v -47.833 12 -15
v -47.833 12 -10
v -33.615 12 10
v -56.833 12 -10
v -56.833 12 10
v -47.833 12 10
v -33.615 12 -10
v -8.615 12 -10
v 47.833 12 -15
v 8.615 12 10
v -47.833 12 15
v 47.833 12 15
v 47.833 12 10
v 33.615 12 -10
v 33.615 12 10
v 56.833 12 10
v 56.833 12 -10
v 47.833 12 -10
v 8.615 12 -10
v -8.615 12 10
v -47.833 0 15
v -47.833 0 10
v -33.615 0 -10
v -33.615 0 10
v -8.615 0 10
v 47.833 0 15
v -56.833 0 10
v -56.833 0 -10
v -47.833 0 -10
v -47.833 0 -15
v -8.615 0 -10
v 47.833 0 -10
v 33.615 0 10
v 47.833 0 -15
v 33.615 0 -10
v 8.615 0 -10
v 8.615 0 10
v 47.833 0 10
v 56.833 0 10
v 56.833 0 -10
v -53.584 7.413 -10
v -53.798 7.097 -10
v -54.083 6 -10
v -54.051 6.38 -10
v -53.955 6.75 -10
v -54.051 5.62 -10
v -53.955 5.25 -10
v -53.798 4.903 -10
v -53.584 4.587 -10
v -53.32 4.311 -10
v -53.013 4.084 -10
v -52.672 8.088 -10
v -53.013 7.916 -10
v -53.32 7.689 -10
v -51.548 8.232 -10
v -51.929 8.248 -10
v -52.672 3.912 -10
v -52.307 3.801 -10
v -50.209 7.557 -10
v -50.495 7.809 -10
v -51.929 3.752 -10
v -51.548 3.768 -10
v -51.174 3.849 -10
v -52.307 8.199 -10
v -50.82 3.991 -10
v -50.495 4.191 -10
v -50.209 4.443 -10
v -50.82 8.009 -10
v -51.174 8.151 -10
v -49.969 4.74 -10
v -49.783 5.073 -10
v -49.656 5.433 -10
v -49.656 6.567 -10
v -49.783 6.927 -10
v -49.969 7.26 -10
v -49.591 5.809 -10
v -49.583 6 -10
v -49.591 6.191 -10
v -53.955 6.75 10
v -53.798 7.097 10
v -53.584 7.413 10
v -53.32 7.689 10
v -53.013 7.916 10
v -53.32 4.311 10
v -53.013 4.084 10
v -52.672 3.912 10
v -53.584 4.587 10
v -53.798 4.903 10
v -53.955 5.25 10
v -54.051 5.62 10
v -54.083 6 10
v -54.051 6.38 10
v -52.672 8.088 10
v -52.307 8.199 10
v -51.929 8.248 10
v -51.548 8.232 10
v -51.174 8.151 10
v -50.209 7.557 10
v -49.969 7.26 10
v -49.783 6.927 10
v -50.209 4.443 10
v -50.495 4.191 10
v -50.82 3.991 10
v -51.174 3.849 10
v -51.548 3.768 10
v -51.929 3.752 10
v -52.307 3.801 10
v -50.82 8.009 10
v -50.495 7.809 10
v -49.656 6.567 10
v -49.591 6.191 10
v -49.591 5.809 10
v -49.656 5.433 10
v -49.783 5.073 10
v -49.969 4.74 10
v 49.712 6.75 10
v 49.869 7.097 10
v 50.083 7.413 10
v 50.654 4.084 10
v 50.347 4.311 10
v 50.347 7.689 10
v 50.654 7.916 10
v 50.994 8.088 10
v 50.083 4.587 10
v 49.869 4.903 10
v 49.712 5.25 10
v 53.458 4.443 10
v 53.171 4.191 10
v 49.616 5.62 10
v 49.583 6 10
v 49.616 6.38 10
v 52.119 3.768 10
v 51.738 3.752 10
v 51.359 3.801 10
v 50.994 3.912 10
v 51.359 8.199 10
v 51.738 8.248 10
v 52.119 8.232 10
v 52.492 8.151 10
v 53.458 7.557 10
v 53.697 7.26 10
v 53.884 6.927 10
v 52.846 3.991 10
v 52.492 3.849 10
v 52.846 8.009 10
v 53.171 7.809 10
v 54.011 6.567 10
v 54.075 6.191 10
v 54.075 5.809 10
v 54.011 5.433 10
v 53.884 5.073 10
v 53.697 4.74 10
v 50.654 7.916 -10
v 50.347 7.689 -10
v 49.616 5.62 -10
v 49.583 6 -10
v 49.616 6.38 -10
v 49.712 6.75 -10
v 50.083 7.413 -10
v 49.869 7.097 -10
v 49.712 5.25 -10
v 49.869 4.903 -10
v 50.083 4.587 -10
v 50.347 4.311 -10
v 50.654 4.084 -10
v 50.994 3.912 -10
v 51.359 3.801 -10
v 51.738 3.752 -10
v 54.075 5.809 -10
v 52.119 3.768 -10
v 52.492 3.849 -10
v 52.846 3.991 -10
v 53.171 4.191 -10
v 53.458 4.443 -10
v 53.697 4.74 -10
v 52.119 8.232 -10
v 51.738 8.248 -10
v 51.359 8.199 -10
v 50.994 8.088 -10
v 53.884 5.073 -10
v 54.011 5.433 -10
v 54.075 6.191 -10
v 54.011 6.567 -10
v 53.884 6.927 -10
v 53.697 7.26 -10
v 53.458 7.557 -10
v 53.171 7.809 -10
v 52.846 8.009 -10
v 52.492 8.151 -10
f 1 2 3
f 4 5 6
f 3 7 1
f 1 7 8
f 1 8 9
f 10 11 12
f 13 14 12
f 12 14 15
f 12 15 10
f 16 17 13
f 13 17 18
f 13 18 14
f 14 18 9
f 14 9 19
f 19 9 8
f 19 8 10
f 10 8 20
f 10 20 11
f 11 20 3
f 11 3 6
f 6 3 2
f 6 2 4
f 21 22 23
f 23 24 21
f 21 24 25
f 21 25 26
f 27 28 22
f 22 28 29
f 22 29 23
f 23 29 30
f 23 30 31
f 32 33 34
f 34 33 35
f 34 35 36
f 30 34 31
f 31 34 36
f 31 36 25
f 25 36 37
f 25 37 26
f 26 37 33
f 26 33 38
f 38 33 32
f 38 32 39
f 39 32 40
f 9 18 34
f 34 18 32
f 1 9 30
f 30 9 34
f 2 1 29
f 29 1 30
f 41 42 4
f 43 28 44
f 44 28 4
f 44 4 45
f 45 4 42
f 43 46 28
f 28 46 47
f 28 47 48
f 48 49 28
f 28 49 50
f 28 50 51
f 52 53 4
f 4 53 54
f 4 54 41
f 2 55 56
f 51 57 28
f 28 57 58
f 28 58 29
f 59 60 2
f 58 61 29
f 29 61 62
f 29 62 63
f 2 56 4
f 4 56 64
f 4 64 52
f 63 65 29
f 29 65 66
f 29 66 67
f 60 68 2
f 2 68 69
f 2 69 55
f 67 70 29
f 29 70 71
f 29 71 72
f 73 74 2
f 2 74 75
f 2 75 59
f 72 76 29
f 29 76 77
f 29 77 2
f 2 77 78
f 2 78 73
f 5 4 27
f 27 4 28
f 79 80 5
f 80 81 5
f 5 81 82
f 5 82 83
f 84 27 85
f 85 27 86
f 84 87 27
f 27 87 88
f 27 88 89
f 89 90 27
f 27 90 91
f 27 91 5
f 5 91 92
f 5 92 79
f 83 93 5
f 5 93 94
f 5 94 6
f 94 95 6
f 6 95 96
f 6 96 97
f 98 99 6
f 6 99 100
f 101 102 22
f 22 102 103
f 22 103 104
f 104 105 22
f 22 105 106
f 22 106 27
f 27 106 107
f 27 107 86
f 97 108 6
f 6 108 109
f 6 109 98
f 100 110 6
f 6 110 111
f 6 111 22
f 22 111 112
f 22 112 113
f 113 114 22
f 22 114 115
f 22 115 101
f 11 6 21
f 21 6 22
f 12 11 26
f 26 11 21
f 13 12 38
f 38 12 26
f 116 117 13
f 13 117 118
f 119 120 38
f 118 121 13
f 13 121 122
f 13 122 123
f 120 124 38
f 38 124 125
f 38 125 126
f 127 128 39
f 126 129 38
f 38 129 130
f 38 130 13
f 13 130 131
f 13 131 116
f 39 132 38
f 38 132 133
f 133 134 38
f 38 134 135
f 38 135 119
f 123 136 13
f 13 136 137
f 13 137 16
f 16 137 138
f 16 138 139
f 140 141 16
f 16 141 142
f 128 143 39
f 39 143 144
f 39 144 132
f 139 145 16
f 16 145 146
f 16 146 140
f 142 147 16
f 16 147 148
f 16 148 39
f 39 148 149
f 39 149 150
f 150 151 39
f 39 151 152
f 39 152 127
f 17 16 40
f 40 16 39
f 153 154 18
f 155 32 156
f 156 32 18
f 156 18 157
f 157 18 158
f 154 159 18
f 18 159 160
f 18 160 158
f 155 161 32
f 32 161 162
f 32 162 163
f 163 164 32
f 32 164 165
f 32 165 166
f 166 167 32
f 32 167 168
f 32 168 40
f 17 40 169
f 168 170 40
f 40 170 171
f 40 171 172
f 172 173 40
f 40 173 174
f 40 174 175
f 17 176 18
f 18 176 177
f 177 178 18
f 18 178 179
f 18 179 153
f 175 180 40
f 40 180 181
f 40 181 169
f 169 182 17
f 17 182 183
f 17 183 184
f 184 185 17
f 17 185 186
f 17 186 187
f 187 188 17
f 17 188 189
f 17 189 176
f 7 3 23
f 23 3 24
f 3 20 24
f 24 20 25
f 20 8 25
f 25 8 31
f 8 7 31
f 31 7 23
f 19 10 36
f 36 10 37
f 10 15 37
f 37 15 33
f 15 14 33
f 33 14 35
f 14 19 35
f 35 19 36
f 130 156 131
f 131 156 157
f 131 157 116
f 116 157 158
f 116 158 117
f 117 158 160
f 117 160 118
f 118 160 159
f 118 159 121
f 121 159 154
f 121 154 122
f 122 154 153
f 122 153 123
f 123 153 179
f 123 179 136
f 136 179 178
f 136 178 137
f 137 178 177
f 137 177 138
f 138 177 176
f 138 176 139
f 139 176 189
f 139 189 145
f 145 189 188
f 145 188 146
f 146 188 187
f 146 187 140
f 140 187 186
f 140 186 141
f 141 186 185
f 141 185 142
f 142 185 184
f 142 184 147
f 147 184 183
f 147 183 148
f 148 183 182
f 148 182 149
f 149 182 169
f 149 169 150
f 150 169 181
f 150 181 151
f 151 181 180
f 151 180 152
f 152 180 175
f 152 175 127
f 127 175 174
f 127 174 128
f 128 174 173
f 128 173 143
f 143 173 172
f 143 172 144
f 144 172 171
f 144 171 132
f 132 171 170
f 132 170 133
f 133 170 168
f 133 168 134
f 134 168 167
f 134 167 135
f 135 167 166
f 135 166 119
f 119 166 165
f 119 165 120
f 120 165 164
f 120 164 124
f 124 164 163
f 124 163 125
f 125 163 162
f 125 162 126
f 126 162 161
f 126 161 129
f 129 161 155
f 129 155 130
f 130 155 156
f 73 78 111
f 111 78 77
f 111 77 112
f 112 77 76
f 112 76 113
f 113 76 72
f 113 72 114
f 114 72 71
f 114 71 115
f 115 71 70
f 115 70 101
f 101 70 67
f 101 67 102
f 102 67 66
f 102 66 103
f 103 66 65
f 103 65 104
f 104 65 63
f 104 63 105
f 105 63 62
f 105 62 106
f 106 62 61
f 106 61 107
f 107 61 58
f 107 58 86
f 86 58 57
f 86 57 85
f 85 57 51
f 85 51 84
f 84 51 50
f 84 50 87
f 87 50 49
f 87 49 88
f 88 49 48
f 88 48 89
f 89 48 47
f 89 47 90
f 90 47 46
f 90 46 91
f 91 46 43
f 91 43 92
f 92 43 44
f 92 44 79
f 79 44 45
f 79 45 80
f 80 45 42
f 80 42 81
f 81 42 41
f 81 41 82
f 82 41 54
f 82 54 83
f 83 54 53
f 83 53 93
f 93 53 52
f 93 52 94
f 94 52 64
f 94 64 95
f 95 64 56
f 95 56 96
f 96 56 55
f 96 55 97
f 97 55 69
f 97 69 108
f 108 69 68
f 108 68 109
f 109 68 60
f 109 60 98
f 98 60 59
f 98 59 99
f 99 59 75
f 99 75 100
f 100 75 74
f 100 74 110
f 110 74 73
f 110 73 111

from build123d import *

# Parameters (mm, degrees)
SKETCH1_W           = 25
SKETCH1_H           = 20
BOSS_EXTRUDE1_DEPTH = 12
SKETCH2_R           = 2.25
CUT_EXTRUDE1_DEPTH  = 64.237868143


with BuildPart() as part:
    # Sketch1 → Boss-Extrude1 (new body)
    with BuildSketch(Plane(origin=(0, 0, 0), x_dir=(1, 0, 0), z_dir=(0, 1, 0))):
        Polygon((-47.833335, 15), (47.833335, 15), (47.833335, 10), (56.833335, 10), (56.833335, -10), (47.833335, -10), (47.833335, -15), (-47.833335, -15), (-47.833335, -10), (-56.833335, -10), (-56.833335, 10), (-47.833335, 10), align=None)
        with Locations((-21.115289313, 0)):
            Rectangle(SKETCH1_W, SKETCH1_H, mode=Mode.SUBTRACT)
        with Locations((21.115289313, 0)):
            Rectangle(SKETCH1_W, SKETCH1_H, mode=Mode.SUBTRACT)
    extrude(amount=BOSS_EXTRUDE1_DEPTH)

    # Sketch2 → Cut-Extrude1 (cut, through all)
    with BuildSketch(Plane(origin=(0, 0, -10), x_dir=(-1, 0, 0), z_dir=(0, 0, -1))):
        with Locations((-51.833335, 6)):
            Circle(SKETCH2_R)
        with Locations((51.833335, 6)):
            Circle(SKETCH2_R)
    extrude(amount=-CUT_EXTRUDE1_DEPTH, mode=Mode.SUBTRACT)


solid = part.part
